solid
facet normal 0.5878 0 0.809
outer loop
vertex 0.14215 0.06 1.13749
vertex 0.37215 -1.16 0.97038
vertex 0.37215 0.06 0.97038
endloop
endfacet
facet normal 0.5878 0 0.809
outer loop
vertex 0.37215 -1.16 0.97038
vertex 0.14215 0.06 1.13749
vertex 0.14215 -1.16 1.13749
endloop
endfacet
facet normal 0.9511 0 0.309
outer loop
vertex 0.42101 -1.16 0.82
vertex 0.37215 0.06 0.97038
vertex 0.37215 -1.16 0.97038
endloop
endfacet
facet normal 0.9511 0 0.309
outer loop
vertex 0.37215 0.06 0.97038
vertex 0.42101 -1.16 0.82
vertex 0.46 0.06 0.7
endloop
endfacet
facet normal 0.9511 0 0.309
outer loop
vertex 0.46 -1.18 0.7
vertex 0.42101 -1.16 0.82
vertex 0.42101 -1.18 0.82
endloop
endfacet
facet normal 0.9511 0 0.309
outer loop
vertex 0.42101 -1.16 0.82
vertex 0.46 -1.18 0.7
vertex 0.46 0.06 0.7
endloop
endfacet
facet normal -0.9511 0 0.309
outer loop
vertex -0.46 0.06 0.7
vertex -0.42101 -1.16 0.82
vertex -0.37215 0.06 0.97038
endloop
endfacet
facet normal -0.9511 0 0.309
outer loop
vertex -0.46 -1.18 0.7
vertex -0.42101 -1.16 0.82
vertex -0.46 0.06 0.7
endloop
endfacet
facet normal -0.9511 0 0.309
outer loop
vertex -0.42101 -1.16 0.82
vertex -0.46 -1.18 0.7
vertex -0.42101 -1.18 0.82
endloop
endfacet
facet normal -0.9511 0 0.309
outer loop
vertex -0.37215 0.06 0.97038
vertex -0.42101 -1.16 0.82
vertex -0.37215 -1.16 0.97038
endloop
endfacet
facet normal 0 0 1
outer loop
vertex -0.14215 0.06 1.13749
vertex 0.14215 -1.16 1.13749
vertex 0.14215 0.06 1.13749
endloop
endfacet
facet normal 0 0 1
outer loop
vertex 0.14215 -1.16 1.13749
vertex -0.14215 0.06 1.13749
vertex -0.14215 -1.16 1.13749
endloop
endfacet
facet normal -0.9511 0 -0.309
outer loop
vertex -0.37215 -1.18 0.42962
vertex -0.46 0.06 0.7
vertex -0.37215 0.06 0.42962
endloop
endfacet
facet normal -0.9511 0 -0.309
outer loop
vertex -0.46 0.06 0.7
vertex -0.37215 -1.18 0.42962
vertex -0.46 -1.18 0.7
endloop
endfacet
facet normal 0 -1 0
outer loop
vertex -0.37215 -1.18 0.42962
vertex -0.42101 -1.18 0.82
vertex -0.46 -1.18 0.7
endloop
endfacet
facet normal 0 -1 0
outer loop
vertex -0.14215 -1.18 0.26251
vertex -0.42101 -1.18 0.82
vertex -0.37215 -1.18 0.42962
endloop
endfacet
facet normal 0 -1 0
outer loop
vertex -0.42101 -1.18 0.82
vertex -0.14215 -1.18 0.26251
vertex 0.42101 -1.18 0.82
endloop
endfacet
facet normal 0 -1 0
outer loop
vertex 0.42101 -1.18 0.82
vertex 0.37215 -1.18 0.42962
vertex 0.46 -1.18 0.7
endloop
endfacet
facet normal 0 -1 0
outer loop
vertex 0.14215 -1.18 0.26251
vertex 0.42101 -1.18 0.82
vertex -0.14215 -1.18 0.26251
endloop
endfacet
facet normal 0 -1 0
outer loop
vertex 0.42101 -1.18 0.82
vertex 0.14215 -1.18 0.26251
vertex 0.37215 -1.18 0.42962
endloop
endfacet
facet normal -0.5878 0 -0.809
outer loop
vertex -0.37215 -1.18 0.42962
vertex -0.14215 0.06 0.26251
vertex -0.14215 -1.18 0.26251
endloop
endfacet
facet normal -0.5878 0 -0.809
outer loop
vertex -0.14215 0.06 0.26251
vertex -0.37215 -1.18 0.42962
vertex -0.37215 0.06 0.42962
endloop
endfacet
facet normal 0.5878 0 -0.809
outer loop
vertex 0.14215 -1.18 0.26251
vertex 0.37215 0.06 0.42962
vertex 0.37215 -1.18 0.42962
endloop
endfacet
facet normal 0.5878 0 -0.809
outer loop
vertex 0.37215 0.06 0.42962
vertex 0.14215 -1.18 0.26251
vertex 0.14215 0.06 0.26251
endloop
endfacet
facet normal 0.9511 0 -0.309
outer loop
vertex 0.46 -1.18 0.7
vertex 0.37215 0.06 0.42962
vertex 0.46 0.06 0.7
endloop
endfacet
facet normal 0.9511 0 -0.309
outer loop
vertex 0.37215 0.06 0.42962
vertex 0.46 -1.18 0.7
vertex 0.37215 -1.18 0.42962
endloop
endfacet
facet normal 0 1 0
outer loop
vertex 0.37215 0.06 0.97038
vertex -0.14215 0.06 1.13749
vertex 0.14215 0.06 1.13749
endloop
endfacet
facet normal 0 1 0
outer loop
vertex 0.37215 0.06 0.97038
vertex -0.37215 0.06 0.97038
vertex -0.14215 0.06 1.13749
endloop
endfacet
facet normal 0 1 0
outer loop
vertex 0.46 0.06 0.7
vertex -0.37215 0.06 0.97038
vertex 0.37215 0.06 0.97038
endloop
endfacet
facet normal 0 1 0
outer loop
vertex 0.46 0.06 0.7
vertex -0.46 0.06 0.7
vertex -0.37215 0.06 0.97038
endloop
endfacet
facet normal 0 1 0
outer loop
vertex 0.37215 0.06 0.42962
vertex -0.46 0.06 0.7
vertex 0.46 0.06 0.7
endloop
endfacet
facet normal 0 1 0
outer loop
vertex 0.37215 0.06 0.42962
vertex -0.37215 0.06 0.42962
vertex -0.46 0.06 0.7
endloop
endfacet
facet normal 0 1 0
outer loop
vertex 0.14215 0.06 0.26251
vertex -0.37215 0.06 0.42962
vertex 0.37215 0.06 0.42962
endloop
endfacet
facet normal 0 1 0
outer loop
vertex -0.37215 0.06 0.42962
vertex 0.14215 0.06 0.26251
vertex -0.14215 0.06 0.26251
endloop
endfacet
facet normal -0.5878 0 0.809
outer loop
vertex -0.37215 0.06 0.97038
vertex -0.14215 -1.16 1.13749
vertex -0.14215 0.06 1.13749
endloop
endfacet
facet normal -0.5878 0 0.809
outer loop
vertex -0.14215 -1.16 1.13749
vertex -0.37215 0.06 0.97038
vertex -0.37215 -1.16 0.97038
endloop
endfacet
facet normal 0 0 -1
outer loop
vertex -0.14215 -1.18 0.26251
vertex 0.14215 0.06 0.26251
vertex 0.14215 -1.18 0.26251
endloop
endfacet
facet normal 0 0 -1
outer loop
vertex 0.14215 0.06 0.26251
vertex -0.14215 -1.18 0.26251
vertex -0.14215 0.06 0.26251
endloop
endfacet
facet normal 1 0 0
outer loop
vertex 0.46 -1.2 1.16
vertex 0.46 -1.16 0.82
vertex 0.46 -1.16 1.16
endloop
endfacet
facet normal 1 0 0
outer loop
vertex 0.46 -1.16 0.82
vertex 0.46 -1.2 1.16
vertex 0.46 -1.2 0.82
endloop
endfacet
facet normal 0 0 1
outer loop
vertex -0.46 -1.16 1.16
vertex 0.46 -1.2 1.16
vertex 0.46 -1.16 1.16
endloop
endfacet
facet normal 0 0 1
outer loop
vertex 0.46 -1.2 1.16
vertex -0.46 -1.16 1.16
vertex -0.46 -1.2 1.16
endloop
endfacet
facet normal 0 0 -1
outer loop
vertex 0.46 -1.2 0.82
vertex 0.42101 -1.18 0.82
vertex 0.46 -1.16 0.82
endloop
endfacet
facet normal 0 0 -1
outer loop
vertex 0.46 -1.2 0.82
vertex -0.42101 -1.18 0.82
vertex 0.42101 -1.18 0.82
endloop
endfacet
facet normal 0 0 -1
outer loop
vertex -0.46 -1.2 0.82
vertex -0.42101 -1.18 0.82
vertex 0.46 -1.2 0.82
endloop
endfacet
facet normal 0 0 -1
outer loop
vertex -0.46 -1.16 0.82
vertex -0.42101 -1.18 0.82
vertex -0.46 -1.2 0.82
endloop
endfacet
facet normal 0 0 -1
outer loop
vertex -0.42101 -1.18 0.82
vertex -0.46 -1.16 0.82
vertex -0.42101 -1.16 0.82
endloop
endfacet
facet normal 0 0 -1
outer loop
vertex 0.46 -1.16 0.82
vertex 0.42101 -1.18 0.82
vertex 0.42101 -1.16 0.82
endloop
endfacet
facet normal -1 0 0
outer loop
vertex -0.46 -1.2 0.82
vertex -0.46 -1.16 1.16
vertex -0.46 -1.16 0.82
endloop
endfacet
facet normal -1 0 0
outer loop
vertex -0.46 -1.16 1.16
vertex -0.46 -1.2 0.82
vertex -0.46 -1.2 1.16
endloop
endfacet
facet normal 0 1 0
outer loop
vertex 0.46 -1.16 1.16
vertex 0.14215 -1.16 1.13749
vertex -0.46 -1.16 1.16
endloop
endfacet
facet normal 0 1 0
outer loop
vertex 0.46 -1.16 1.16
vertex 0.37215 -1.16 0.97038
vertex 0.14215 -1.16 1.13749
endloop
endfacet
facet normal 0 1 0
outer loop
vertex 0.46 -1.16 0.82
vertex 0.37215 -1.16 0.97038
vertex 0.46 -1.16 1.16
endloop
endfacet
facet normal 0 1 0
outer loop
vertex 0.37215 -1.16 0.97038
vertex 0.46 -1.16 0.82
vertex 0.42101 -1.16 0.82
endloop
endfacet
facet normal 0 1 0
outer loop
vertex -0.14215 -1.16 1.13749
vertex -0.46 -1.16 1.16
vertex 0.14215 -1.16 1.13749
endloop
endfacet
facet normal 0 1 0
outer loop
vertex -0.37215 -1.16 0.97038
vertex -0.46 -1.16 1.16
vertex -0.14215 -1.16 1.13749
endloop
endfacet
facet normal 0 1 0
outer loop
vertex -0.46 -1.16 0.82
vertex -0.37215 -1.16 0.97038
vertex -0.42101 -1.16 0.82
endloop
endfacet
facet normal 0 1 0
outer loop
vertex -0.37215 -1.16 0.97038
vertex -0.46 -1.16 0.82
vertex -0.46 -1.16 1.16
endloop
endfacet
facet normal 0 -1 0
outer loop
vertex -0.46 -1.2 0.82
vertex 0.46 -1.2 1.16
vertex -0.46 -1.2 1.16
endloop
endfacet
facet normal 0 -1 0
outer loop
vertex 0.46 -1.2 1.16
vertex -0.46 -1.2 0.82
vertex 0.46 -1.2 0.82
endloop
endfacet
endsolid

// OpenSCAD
union() {
  translate([0, 6.0e-2, 0]) {
    translate([0, 0, 0.7]) {
      rotate([90.0, 0, 0]) {
        cylinder(h = 1.24, r = 0.46, $fn = 10);
      }
    }
  }
  translate([-0.46, 0, 0]) {
    translate([0, -1.2, 0]) {
      translate([0, 0, 0.82]) {
        cube([0.92, 4.0e-2, 0.34]);
      }
    }
  }
}
$fn = 50;
